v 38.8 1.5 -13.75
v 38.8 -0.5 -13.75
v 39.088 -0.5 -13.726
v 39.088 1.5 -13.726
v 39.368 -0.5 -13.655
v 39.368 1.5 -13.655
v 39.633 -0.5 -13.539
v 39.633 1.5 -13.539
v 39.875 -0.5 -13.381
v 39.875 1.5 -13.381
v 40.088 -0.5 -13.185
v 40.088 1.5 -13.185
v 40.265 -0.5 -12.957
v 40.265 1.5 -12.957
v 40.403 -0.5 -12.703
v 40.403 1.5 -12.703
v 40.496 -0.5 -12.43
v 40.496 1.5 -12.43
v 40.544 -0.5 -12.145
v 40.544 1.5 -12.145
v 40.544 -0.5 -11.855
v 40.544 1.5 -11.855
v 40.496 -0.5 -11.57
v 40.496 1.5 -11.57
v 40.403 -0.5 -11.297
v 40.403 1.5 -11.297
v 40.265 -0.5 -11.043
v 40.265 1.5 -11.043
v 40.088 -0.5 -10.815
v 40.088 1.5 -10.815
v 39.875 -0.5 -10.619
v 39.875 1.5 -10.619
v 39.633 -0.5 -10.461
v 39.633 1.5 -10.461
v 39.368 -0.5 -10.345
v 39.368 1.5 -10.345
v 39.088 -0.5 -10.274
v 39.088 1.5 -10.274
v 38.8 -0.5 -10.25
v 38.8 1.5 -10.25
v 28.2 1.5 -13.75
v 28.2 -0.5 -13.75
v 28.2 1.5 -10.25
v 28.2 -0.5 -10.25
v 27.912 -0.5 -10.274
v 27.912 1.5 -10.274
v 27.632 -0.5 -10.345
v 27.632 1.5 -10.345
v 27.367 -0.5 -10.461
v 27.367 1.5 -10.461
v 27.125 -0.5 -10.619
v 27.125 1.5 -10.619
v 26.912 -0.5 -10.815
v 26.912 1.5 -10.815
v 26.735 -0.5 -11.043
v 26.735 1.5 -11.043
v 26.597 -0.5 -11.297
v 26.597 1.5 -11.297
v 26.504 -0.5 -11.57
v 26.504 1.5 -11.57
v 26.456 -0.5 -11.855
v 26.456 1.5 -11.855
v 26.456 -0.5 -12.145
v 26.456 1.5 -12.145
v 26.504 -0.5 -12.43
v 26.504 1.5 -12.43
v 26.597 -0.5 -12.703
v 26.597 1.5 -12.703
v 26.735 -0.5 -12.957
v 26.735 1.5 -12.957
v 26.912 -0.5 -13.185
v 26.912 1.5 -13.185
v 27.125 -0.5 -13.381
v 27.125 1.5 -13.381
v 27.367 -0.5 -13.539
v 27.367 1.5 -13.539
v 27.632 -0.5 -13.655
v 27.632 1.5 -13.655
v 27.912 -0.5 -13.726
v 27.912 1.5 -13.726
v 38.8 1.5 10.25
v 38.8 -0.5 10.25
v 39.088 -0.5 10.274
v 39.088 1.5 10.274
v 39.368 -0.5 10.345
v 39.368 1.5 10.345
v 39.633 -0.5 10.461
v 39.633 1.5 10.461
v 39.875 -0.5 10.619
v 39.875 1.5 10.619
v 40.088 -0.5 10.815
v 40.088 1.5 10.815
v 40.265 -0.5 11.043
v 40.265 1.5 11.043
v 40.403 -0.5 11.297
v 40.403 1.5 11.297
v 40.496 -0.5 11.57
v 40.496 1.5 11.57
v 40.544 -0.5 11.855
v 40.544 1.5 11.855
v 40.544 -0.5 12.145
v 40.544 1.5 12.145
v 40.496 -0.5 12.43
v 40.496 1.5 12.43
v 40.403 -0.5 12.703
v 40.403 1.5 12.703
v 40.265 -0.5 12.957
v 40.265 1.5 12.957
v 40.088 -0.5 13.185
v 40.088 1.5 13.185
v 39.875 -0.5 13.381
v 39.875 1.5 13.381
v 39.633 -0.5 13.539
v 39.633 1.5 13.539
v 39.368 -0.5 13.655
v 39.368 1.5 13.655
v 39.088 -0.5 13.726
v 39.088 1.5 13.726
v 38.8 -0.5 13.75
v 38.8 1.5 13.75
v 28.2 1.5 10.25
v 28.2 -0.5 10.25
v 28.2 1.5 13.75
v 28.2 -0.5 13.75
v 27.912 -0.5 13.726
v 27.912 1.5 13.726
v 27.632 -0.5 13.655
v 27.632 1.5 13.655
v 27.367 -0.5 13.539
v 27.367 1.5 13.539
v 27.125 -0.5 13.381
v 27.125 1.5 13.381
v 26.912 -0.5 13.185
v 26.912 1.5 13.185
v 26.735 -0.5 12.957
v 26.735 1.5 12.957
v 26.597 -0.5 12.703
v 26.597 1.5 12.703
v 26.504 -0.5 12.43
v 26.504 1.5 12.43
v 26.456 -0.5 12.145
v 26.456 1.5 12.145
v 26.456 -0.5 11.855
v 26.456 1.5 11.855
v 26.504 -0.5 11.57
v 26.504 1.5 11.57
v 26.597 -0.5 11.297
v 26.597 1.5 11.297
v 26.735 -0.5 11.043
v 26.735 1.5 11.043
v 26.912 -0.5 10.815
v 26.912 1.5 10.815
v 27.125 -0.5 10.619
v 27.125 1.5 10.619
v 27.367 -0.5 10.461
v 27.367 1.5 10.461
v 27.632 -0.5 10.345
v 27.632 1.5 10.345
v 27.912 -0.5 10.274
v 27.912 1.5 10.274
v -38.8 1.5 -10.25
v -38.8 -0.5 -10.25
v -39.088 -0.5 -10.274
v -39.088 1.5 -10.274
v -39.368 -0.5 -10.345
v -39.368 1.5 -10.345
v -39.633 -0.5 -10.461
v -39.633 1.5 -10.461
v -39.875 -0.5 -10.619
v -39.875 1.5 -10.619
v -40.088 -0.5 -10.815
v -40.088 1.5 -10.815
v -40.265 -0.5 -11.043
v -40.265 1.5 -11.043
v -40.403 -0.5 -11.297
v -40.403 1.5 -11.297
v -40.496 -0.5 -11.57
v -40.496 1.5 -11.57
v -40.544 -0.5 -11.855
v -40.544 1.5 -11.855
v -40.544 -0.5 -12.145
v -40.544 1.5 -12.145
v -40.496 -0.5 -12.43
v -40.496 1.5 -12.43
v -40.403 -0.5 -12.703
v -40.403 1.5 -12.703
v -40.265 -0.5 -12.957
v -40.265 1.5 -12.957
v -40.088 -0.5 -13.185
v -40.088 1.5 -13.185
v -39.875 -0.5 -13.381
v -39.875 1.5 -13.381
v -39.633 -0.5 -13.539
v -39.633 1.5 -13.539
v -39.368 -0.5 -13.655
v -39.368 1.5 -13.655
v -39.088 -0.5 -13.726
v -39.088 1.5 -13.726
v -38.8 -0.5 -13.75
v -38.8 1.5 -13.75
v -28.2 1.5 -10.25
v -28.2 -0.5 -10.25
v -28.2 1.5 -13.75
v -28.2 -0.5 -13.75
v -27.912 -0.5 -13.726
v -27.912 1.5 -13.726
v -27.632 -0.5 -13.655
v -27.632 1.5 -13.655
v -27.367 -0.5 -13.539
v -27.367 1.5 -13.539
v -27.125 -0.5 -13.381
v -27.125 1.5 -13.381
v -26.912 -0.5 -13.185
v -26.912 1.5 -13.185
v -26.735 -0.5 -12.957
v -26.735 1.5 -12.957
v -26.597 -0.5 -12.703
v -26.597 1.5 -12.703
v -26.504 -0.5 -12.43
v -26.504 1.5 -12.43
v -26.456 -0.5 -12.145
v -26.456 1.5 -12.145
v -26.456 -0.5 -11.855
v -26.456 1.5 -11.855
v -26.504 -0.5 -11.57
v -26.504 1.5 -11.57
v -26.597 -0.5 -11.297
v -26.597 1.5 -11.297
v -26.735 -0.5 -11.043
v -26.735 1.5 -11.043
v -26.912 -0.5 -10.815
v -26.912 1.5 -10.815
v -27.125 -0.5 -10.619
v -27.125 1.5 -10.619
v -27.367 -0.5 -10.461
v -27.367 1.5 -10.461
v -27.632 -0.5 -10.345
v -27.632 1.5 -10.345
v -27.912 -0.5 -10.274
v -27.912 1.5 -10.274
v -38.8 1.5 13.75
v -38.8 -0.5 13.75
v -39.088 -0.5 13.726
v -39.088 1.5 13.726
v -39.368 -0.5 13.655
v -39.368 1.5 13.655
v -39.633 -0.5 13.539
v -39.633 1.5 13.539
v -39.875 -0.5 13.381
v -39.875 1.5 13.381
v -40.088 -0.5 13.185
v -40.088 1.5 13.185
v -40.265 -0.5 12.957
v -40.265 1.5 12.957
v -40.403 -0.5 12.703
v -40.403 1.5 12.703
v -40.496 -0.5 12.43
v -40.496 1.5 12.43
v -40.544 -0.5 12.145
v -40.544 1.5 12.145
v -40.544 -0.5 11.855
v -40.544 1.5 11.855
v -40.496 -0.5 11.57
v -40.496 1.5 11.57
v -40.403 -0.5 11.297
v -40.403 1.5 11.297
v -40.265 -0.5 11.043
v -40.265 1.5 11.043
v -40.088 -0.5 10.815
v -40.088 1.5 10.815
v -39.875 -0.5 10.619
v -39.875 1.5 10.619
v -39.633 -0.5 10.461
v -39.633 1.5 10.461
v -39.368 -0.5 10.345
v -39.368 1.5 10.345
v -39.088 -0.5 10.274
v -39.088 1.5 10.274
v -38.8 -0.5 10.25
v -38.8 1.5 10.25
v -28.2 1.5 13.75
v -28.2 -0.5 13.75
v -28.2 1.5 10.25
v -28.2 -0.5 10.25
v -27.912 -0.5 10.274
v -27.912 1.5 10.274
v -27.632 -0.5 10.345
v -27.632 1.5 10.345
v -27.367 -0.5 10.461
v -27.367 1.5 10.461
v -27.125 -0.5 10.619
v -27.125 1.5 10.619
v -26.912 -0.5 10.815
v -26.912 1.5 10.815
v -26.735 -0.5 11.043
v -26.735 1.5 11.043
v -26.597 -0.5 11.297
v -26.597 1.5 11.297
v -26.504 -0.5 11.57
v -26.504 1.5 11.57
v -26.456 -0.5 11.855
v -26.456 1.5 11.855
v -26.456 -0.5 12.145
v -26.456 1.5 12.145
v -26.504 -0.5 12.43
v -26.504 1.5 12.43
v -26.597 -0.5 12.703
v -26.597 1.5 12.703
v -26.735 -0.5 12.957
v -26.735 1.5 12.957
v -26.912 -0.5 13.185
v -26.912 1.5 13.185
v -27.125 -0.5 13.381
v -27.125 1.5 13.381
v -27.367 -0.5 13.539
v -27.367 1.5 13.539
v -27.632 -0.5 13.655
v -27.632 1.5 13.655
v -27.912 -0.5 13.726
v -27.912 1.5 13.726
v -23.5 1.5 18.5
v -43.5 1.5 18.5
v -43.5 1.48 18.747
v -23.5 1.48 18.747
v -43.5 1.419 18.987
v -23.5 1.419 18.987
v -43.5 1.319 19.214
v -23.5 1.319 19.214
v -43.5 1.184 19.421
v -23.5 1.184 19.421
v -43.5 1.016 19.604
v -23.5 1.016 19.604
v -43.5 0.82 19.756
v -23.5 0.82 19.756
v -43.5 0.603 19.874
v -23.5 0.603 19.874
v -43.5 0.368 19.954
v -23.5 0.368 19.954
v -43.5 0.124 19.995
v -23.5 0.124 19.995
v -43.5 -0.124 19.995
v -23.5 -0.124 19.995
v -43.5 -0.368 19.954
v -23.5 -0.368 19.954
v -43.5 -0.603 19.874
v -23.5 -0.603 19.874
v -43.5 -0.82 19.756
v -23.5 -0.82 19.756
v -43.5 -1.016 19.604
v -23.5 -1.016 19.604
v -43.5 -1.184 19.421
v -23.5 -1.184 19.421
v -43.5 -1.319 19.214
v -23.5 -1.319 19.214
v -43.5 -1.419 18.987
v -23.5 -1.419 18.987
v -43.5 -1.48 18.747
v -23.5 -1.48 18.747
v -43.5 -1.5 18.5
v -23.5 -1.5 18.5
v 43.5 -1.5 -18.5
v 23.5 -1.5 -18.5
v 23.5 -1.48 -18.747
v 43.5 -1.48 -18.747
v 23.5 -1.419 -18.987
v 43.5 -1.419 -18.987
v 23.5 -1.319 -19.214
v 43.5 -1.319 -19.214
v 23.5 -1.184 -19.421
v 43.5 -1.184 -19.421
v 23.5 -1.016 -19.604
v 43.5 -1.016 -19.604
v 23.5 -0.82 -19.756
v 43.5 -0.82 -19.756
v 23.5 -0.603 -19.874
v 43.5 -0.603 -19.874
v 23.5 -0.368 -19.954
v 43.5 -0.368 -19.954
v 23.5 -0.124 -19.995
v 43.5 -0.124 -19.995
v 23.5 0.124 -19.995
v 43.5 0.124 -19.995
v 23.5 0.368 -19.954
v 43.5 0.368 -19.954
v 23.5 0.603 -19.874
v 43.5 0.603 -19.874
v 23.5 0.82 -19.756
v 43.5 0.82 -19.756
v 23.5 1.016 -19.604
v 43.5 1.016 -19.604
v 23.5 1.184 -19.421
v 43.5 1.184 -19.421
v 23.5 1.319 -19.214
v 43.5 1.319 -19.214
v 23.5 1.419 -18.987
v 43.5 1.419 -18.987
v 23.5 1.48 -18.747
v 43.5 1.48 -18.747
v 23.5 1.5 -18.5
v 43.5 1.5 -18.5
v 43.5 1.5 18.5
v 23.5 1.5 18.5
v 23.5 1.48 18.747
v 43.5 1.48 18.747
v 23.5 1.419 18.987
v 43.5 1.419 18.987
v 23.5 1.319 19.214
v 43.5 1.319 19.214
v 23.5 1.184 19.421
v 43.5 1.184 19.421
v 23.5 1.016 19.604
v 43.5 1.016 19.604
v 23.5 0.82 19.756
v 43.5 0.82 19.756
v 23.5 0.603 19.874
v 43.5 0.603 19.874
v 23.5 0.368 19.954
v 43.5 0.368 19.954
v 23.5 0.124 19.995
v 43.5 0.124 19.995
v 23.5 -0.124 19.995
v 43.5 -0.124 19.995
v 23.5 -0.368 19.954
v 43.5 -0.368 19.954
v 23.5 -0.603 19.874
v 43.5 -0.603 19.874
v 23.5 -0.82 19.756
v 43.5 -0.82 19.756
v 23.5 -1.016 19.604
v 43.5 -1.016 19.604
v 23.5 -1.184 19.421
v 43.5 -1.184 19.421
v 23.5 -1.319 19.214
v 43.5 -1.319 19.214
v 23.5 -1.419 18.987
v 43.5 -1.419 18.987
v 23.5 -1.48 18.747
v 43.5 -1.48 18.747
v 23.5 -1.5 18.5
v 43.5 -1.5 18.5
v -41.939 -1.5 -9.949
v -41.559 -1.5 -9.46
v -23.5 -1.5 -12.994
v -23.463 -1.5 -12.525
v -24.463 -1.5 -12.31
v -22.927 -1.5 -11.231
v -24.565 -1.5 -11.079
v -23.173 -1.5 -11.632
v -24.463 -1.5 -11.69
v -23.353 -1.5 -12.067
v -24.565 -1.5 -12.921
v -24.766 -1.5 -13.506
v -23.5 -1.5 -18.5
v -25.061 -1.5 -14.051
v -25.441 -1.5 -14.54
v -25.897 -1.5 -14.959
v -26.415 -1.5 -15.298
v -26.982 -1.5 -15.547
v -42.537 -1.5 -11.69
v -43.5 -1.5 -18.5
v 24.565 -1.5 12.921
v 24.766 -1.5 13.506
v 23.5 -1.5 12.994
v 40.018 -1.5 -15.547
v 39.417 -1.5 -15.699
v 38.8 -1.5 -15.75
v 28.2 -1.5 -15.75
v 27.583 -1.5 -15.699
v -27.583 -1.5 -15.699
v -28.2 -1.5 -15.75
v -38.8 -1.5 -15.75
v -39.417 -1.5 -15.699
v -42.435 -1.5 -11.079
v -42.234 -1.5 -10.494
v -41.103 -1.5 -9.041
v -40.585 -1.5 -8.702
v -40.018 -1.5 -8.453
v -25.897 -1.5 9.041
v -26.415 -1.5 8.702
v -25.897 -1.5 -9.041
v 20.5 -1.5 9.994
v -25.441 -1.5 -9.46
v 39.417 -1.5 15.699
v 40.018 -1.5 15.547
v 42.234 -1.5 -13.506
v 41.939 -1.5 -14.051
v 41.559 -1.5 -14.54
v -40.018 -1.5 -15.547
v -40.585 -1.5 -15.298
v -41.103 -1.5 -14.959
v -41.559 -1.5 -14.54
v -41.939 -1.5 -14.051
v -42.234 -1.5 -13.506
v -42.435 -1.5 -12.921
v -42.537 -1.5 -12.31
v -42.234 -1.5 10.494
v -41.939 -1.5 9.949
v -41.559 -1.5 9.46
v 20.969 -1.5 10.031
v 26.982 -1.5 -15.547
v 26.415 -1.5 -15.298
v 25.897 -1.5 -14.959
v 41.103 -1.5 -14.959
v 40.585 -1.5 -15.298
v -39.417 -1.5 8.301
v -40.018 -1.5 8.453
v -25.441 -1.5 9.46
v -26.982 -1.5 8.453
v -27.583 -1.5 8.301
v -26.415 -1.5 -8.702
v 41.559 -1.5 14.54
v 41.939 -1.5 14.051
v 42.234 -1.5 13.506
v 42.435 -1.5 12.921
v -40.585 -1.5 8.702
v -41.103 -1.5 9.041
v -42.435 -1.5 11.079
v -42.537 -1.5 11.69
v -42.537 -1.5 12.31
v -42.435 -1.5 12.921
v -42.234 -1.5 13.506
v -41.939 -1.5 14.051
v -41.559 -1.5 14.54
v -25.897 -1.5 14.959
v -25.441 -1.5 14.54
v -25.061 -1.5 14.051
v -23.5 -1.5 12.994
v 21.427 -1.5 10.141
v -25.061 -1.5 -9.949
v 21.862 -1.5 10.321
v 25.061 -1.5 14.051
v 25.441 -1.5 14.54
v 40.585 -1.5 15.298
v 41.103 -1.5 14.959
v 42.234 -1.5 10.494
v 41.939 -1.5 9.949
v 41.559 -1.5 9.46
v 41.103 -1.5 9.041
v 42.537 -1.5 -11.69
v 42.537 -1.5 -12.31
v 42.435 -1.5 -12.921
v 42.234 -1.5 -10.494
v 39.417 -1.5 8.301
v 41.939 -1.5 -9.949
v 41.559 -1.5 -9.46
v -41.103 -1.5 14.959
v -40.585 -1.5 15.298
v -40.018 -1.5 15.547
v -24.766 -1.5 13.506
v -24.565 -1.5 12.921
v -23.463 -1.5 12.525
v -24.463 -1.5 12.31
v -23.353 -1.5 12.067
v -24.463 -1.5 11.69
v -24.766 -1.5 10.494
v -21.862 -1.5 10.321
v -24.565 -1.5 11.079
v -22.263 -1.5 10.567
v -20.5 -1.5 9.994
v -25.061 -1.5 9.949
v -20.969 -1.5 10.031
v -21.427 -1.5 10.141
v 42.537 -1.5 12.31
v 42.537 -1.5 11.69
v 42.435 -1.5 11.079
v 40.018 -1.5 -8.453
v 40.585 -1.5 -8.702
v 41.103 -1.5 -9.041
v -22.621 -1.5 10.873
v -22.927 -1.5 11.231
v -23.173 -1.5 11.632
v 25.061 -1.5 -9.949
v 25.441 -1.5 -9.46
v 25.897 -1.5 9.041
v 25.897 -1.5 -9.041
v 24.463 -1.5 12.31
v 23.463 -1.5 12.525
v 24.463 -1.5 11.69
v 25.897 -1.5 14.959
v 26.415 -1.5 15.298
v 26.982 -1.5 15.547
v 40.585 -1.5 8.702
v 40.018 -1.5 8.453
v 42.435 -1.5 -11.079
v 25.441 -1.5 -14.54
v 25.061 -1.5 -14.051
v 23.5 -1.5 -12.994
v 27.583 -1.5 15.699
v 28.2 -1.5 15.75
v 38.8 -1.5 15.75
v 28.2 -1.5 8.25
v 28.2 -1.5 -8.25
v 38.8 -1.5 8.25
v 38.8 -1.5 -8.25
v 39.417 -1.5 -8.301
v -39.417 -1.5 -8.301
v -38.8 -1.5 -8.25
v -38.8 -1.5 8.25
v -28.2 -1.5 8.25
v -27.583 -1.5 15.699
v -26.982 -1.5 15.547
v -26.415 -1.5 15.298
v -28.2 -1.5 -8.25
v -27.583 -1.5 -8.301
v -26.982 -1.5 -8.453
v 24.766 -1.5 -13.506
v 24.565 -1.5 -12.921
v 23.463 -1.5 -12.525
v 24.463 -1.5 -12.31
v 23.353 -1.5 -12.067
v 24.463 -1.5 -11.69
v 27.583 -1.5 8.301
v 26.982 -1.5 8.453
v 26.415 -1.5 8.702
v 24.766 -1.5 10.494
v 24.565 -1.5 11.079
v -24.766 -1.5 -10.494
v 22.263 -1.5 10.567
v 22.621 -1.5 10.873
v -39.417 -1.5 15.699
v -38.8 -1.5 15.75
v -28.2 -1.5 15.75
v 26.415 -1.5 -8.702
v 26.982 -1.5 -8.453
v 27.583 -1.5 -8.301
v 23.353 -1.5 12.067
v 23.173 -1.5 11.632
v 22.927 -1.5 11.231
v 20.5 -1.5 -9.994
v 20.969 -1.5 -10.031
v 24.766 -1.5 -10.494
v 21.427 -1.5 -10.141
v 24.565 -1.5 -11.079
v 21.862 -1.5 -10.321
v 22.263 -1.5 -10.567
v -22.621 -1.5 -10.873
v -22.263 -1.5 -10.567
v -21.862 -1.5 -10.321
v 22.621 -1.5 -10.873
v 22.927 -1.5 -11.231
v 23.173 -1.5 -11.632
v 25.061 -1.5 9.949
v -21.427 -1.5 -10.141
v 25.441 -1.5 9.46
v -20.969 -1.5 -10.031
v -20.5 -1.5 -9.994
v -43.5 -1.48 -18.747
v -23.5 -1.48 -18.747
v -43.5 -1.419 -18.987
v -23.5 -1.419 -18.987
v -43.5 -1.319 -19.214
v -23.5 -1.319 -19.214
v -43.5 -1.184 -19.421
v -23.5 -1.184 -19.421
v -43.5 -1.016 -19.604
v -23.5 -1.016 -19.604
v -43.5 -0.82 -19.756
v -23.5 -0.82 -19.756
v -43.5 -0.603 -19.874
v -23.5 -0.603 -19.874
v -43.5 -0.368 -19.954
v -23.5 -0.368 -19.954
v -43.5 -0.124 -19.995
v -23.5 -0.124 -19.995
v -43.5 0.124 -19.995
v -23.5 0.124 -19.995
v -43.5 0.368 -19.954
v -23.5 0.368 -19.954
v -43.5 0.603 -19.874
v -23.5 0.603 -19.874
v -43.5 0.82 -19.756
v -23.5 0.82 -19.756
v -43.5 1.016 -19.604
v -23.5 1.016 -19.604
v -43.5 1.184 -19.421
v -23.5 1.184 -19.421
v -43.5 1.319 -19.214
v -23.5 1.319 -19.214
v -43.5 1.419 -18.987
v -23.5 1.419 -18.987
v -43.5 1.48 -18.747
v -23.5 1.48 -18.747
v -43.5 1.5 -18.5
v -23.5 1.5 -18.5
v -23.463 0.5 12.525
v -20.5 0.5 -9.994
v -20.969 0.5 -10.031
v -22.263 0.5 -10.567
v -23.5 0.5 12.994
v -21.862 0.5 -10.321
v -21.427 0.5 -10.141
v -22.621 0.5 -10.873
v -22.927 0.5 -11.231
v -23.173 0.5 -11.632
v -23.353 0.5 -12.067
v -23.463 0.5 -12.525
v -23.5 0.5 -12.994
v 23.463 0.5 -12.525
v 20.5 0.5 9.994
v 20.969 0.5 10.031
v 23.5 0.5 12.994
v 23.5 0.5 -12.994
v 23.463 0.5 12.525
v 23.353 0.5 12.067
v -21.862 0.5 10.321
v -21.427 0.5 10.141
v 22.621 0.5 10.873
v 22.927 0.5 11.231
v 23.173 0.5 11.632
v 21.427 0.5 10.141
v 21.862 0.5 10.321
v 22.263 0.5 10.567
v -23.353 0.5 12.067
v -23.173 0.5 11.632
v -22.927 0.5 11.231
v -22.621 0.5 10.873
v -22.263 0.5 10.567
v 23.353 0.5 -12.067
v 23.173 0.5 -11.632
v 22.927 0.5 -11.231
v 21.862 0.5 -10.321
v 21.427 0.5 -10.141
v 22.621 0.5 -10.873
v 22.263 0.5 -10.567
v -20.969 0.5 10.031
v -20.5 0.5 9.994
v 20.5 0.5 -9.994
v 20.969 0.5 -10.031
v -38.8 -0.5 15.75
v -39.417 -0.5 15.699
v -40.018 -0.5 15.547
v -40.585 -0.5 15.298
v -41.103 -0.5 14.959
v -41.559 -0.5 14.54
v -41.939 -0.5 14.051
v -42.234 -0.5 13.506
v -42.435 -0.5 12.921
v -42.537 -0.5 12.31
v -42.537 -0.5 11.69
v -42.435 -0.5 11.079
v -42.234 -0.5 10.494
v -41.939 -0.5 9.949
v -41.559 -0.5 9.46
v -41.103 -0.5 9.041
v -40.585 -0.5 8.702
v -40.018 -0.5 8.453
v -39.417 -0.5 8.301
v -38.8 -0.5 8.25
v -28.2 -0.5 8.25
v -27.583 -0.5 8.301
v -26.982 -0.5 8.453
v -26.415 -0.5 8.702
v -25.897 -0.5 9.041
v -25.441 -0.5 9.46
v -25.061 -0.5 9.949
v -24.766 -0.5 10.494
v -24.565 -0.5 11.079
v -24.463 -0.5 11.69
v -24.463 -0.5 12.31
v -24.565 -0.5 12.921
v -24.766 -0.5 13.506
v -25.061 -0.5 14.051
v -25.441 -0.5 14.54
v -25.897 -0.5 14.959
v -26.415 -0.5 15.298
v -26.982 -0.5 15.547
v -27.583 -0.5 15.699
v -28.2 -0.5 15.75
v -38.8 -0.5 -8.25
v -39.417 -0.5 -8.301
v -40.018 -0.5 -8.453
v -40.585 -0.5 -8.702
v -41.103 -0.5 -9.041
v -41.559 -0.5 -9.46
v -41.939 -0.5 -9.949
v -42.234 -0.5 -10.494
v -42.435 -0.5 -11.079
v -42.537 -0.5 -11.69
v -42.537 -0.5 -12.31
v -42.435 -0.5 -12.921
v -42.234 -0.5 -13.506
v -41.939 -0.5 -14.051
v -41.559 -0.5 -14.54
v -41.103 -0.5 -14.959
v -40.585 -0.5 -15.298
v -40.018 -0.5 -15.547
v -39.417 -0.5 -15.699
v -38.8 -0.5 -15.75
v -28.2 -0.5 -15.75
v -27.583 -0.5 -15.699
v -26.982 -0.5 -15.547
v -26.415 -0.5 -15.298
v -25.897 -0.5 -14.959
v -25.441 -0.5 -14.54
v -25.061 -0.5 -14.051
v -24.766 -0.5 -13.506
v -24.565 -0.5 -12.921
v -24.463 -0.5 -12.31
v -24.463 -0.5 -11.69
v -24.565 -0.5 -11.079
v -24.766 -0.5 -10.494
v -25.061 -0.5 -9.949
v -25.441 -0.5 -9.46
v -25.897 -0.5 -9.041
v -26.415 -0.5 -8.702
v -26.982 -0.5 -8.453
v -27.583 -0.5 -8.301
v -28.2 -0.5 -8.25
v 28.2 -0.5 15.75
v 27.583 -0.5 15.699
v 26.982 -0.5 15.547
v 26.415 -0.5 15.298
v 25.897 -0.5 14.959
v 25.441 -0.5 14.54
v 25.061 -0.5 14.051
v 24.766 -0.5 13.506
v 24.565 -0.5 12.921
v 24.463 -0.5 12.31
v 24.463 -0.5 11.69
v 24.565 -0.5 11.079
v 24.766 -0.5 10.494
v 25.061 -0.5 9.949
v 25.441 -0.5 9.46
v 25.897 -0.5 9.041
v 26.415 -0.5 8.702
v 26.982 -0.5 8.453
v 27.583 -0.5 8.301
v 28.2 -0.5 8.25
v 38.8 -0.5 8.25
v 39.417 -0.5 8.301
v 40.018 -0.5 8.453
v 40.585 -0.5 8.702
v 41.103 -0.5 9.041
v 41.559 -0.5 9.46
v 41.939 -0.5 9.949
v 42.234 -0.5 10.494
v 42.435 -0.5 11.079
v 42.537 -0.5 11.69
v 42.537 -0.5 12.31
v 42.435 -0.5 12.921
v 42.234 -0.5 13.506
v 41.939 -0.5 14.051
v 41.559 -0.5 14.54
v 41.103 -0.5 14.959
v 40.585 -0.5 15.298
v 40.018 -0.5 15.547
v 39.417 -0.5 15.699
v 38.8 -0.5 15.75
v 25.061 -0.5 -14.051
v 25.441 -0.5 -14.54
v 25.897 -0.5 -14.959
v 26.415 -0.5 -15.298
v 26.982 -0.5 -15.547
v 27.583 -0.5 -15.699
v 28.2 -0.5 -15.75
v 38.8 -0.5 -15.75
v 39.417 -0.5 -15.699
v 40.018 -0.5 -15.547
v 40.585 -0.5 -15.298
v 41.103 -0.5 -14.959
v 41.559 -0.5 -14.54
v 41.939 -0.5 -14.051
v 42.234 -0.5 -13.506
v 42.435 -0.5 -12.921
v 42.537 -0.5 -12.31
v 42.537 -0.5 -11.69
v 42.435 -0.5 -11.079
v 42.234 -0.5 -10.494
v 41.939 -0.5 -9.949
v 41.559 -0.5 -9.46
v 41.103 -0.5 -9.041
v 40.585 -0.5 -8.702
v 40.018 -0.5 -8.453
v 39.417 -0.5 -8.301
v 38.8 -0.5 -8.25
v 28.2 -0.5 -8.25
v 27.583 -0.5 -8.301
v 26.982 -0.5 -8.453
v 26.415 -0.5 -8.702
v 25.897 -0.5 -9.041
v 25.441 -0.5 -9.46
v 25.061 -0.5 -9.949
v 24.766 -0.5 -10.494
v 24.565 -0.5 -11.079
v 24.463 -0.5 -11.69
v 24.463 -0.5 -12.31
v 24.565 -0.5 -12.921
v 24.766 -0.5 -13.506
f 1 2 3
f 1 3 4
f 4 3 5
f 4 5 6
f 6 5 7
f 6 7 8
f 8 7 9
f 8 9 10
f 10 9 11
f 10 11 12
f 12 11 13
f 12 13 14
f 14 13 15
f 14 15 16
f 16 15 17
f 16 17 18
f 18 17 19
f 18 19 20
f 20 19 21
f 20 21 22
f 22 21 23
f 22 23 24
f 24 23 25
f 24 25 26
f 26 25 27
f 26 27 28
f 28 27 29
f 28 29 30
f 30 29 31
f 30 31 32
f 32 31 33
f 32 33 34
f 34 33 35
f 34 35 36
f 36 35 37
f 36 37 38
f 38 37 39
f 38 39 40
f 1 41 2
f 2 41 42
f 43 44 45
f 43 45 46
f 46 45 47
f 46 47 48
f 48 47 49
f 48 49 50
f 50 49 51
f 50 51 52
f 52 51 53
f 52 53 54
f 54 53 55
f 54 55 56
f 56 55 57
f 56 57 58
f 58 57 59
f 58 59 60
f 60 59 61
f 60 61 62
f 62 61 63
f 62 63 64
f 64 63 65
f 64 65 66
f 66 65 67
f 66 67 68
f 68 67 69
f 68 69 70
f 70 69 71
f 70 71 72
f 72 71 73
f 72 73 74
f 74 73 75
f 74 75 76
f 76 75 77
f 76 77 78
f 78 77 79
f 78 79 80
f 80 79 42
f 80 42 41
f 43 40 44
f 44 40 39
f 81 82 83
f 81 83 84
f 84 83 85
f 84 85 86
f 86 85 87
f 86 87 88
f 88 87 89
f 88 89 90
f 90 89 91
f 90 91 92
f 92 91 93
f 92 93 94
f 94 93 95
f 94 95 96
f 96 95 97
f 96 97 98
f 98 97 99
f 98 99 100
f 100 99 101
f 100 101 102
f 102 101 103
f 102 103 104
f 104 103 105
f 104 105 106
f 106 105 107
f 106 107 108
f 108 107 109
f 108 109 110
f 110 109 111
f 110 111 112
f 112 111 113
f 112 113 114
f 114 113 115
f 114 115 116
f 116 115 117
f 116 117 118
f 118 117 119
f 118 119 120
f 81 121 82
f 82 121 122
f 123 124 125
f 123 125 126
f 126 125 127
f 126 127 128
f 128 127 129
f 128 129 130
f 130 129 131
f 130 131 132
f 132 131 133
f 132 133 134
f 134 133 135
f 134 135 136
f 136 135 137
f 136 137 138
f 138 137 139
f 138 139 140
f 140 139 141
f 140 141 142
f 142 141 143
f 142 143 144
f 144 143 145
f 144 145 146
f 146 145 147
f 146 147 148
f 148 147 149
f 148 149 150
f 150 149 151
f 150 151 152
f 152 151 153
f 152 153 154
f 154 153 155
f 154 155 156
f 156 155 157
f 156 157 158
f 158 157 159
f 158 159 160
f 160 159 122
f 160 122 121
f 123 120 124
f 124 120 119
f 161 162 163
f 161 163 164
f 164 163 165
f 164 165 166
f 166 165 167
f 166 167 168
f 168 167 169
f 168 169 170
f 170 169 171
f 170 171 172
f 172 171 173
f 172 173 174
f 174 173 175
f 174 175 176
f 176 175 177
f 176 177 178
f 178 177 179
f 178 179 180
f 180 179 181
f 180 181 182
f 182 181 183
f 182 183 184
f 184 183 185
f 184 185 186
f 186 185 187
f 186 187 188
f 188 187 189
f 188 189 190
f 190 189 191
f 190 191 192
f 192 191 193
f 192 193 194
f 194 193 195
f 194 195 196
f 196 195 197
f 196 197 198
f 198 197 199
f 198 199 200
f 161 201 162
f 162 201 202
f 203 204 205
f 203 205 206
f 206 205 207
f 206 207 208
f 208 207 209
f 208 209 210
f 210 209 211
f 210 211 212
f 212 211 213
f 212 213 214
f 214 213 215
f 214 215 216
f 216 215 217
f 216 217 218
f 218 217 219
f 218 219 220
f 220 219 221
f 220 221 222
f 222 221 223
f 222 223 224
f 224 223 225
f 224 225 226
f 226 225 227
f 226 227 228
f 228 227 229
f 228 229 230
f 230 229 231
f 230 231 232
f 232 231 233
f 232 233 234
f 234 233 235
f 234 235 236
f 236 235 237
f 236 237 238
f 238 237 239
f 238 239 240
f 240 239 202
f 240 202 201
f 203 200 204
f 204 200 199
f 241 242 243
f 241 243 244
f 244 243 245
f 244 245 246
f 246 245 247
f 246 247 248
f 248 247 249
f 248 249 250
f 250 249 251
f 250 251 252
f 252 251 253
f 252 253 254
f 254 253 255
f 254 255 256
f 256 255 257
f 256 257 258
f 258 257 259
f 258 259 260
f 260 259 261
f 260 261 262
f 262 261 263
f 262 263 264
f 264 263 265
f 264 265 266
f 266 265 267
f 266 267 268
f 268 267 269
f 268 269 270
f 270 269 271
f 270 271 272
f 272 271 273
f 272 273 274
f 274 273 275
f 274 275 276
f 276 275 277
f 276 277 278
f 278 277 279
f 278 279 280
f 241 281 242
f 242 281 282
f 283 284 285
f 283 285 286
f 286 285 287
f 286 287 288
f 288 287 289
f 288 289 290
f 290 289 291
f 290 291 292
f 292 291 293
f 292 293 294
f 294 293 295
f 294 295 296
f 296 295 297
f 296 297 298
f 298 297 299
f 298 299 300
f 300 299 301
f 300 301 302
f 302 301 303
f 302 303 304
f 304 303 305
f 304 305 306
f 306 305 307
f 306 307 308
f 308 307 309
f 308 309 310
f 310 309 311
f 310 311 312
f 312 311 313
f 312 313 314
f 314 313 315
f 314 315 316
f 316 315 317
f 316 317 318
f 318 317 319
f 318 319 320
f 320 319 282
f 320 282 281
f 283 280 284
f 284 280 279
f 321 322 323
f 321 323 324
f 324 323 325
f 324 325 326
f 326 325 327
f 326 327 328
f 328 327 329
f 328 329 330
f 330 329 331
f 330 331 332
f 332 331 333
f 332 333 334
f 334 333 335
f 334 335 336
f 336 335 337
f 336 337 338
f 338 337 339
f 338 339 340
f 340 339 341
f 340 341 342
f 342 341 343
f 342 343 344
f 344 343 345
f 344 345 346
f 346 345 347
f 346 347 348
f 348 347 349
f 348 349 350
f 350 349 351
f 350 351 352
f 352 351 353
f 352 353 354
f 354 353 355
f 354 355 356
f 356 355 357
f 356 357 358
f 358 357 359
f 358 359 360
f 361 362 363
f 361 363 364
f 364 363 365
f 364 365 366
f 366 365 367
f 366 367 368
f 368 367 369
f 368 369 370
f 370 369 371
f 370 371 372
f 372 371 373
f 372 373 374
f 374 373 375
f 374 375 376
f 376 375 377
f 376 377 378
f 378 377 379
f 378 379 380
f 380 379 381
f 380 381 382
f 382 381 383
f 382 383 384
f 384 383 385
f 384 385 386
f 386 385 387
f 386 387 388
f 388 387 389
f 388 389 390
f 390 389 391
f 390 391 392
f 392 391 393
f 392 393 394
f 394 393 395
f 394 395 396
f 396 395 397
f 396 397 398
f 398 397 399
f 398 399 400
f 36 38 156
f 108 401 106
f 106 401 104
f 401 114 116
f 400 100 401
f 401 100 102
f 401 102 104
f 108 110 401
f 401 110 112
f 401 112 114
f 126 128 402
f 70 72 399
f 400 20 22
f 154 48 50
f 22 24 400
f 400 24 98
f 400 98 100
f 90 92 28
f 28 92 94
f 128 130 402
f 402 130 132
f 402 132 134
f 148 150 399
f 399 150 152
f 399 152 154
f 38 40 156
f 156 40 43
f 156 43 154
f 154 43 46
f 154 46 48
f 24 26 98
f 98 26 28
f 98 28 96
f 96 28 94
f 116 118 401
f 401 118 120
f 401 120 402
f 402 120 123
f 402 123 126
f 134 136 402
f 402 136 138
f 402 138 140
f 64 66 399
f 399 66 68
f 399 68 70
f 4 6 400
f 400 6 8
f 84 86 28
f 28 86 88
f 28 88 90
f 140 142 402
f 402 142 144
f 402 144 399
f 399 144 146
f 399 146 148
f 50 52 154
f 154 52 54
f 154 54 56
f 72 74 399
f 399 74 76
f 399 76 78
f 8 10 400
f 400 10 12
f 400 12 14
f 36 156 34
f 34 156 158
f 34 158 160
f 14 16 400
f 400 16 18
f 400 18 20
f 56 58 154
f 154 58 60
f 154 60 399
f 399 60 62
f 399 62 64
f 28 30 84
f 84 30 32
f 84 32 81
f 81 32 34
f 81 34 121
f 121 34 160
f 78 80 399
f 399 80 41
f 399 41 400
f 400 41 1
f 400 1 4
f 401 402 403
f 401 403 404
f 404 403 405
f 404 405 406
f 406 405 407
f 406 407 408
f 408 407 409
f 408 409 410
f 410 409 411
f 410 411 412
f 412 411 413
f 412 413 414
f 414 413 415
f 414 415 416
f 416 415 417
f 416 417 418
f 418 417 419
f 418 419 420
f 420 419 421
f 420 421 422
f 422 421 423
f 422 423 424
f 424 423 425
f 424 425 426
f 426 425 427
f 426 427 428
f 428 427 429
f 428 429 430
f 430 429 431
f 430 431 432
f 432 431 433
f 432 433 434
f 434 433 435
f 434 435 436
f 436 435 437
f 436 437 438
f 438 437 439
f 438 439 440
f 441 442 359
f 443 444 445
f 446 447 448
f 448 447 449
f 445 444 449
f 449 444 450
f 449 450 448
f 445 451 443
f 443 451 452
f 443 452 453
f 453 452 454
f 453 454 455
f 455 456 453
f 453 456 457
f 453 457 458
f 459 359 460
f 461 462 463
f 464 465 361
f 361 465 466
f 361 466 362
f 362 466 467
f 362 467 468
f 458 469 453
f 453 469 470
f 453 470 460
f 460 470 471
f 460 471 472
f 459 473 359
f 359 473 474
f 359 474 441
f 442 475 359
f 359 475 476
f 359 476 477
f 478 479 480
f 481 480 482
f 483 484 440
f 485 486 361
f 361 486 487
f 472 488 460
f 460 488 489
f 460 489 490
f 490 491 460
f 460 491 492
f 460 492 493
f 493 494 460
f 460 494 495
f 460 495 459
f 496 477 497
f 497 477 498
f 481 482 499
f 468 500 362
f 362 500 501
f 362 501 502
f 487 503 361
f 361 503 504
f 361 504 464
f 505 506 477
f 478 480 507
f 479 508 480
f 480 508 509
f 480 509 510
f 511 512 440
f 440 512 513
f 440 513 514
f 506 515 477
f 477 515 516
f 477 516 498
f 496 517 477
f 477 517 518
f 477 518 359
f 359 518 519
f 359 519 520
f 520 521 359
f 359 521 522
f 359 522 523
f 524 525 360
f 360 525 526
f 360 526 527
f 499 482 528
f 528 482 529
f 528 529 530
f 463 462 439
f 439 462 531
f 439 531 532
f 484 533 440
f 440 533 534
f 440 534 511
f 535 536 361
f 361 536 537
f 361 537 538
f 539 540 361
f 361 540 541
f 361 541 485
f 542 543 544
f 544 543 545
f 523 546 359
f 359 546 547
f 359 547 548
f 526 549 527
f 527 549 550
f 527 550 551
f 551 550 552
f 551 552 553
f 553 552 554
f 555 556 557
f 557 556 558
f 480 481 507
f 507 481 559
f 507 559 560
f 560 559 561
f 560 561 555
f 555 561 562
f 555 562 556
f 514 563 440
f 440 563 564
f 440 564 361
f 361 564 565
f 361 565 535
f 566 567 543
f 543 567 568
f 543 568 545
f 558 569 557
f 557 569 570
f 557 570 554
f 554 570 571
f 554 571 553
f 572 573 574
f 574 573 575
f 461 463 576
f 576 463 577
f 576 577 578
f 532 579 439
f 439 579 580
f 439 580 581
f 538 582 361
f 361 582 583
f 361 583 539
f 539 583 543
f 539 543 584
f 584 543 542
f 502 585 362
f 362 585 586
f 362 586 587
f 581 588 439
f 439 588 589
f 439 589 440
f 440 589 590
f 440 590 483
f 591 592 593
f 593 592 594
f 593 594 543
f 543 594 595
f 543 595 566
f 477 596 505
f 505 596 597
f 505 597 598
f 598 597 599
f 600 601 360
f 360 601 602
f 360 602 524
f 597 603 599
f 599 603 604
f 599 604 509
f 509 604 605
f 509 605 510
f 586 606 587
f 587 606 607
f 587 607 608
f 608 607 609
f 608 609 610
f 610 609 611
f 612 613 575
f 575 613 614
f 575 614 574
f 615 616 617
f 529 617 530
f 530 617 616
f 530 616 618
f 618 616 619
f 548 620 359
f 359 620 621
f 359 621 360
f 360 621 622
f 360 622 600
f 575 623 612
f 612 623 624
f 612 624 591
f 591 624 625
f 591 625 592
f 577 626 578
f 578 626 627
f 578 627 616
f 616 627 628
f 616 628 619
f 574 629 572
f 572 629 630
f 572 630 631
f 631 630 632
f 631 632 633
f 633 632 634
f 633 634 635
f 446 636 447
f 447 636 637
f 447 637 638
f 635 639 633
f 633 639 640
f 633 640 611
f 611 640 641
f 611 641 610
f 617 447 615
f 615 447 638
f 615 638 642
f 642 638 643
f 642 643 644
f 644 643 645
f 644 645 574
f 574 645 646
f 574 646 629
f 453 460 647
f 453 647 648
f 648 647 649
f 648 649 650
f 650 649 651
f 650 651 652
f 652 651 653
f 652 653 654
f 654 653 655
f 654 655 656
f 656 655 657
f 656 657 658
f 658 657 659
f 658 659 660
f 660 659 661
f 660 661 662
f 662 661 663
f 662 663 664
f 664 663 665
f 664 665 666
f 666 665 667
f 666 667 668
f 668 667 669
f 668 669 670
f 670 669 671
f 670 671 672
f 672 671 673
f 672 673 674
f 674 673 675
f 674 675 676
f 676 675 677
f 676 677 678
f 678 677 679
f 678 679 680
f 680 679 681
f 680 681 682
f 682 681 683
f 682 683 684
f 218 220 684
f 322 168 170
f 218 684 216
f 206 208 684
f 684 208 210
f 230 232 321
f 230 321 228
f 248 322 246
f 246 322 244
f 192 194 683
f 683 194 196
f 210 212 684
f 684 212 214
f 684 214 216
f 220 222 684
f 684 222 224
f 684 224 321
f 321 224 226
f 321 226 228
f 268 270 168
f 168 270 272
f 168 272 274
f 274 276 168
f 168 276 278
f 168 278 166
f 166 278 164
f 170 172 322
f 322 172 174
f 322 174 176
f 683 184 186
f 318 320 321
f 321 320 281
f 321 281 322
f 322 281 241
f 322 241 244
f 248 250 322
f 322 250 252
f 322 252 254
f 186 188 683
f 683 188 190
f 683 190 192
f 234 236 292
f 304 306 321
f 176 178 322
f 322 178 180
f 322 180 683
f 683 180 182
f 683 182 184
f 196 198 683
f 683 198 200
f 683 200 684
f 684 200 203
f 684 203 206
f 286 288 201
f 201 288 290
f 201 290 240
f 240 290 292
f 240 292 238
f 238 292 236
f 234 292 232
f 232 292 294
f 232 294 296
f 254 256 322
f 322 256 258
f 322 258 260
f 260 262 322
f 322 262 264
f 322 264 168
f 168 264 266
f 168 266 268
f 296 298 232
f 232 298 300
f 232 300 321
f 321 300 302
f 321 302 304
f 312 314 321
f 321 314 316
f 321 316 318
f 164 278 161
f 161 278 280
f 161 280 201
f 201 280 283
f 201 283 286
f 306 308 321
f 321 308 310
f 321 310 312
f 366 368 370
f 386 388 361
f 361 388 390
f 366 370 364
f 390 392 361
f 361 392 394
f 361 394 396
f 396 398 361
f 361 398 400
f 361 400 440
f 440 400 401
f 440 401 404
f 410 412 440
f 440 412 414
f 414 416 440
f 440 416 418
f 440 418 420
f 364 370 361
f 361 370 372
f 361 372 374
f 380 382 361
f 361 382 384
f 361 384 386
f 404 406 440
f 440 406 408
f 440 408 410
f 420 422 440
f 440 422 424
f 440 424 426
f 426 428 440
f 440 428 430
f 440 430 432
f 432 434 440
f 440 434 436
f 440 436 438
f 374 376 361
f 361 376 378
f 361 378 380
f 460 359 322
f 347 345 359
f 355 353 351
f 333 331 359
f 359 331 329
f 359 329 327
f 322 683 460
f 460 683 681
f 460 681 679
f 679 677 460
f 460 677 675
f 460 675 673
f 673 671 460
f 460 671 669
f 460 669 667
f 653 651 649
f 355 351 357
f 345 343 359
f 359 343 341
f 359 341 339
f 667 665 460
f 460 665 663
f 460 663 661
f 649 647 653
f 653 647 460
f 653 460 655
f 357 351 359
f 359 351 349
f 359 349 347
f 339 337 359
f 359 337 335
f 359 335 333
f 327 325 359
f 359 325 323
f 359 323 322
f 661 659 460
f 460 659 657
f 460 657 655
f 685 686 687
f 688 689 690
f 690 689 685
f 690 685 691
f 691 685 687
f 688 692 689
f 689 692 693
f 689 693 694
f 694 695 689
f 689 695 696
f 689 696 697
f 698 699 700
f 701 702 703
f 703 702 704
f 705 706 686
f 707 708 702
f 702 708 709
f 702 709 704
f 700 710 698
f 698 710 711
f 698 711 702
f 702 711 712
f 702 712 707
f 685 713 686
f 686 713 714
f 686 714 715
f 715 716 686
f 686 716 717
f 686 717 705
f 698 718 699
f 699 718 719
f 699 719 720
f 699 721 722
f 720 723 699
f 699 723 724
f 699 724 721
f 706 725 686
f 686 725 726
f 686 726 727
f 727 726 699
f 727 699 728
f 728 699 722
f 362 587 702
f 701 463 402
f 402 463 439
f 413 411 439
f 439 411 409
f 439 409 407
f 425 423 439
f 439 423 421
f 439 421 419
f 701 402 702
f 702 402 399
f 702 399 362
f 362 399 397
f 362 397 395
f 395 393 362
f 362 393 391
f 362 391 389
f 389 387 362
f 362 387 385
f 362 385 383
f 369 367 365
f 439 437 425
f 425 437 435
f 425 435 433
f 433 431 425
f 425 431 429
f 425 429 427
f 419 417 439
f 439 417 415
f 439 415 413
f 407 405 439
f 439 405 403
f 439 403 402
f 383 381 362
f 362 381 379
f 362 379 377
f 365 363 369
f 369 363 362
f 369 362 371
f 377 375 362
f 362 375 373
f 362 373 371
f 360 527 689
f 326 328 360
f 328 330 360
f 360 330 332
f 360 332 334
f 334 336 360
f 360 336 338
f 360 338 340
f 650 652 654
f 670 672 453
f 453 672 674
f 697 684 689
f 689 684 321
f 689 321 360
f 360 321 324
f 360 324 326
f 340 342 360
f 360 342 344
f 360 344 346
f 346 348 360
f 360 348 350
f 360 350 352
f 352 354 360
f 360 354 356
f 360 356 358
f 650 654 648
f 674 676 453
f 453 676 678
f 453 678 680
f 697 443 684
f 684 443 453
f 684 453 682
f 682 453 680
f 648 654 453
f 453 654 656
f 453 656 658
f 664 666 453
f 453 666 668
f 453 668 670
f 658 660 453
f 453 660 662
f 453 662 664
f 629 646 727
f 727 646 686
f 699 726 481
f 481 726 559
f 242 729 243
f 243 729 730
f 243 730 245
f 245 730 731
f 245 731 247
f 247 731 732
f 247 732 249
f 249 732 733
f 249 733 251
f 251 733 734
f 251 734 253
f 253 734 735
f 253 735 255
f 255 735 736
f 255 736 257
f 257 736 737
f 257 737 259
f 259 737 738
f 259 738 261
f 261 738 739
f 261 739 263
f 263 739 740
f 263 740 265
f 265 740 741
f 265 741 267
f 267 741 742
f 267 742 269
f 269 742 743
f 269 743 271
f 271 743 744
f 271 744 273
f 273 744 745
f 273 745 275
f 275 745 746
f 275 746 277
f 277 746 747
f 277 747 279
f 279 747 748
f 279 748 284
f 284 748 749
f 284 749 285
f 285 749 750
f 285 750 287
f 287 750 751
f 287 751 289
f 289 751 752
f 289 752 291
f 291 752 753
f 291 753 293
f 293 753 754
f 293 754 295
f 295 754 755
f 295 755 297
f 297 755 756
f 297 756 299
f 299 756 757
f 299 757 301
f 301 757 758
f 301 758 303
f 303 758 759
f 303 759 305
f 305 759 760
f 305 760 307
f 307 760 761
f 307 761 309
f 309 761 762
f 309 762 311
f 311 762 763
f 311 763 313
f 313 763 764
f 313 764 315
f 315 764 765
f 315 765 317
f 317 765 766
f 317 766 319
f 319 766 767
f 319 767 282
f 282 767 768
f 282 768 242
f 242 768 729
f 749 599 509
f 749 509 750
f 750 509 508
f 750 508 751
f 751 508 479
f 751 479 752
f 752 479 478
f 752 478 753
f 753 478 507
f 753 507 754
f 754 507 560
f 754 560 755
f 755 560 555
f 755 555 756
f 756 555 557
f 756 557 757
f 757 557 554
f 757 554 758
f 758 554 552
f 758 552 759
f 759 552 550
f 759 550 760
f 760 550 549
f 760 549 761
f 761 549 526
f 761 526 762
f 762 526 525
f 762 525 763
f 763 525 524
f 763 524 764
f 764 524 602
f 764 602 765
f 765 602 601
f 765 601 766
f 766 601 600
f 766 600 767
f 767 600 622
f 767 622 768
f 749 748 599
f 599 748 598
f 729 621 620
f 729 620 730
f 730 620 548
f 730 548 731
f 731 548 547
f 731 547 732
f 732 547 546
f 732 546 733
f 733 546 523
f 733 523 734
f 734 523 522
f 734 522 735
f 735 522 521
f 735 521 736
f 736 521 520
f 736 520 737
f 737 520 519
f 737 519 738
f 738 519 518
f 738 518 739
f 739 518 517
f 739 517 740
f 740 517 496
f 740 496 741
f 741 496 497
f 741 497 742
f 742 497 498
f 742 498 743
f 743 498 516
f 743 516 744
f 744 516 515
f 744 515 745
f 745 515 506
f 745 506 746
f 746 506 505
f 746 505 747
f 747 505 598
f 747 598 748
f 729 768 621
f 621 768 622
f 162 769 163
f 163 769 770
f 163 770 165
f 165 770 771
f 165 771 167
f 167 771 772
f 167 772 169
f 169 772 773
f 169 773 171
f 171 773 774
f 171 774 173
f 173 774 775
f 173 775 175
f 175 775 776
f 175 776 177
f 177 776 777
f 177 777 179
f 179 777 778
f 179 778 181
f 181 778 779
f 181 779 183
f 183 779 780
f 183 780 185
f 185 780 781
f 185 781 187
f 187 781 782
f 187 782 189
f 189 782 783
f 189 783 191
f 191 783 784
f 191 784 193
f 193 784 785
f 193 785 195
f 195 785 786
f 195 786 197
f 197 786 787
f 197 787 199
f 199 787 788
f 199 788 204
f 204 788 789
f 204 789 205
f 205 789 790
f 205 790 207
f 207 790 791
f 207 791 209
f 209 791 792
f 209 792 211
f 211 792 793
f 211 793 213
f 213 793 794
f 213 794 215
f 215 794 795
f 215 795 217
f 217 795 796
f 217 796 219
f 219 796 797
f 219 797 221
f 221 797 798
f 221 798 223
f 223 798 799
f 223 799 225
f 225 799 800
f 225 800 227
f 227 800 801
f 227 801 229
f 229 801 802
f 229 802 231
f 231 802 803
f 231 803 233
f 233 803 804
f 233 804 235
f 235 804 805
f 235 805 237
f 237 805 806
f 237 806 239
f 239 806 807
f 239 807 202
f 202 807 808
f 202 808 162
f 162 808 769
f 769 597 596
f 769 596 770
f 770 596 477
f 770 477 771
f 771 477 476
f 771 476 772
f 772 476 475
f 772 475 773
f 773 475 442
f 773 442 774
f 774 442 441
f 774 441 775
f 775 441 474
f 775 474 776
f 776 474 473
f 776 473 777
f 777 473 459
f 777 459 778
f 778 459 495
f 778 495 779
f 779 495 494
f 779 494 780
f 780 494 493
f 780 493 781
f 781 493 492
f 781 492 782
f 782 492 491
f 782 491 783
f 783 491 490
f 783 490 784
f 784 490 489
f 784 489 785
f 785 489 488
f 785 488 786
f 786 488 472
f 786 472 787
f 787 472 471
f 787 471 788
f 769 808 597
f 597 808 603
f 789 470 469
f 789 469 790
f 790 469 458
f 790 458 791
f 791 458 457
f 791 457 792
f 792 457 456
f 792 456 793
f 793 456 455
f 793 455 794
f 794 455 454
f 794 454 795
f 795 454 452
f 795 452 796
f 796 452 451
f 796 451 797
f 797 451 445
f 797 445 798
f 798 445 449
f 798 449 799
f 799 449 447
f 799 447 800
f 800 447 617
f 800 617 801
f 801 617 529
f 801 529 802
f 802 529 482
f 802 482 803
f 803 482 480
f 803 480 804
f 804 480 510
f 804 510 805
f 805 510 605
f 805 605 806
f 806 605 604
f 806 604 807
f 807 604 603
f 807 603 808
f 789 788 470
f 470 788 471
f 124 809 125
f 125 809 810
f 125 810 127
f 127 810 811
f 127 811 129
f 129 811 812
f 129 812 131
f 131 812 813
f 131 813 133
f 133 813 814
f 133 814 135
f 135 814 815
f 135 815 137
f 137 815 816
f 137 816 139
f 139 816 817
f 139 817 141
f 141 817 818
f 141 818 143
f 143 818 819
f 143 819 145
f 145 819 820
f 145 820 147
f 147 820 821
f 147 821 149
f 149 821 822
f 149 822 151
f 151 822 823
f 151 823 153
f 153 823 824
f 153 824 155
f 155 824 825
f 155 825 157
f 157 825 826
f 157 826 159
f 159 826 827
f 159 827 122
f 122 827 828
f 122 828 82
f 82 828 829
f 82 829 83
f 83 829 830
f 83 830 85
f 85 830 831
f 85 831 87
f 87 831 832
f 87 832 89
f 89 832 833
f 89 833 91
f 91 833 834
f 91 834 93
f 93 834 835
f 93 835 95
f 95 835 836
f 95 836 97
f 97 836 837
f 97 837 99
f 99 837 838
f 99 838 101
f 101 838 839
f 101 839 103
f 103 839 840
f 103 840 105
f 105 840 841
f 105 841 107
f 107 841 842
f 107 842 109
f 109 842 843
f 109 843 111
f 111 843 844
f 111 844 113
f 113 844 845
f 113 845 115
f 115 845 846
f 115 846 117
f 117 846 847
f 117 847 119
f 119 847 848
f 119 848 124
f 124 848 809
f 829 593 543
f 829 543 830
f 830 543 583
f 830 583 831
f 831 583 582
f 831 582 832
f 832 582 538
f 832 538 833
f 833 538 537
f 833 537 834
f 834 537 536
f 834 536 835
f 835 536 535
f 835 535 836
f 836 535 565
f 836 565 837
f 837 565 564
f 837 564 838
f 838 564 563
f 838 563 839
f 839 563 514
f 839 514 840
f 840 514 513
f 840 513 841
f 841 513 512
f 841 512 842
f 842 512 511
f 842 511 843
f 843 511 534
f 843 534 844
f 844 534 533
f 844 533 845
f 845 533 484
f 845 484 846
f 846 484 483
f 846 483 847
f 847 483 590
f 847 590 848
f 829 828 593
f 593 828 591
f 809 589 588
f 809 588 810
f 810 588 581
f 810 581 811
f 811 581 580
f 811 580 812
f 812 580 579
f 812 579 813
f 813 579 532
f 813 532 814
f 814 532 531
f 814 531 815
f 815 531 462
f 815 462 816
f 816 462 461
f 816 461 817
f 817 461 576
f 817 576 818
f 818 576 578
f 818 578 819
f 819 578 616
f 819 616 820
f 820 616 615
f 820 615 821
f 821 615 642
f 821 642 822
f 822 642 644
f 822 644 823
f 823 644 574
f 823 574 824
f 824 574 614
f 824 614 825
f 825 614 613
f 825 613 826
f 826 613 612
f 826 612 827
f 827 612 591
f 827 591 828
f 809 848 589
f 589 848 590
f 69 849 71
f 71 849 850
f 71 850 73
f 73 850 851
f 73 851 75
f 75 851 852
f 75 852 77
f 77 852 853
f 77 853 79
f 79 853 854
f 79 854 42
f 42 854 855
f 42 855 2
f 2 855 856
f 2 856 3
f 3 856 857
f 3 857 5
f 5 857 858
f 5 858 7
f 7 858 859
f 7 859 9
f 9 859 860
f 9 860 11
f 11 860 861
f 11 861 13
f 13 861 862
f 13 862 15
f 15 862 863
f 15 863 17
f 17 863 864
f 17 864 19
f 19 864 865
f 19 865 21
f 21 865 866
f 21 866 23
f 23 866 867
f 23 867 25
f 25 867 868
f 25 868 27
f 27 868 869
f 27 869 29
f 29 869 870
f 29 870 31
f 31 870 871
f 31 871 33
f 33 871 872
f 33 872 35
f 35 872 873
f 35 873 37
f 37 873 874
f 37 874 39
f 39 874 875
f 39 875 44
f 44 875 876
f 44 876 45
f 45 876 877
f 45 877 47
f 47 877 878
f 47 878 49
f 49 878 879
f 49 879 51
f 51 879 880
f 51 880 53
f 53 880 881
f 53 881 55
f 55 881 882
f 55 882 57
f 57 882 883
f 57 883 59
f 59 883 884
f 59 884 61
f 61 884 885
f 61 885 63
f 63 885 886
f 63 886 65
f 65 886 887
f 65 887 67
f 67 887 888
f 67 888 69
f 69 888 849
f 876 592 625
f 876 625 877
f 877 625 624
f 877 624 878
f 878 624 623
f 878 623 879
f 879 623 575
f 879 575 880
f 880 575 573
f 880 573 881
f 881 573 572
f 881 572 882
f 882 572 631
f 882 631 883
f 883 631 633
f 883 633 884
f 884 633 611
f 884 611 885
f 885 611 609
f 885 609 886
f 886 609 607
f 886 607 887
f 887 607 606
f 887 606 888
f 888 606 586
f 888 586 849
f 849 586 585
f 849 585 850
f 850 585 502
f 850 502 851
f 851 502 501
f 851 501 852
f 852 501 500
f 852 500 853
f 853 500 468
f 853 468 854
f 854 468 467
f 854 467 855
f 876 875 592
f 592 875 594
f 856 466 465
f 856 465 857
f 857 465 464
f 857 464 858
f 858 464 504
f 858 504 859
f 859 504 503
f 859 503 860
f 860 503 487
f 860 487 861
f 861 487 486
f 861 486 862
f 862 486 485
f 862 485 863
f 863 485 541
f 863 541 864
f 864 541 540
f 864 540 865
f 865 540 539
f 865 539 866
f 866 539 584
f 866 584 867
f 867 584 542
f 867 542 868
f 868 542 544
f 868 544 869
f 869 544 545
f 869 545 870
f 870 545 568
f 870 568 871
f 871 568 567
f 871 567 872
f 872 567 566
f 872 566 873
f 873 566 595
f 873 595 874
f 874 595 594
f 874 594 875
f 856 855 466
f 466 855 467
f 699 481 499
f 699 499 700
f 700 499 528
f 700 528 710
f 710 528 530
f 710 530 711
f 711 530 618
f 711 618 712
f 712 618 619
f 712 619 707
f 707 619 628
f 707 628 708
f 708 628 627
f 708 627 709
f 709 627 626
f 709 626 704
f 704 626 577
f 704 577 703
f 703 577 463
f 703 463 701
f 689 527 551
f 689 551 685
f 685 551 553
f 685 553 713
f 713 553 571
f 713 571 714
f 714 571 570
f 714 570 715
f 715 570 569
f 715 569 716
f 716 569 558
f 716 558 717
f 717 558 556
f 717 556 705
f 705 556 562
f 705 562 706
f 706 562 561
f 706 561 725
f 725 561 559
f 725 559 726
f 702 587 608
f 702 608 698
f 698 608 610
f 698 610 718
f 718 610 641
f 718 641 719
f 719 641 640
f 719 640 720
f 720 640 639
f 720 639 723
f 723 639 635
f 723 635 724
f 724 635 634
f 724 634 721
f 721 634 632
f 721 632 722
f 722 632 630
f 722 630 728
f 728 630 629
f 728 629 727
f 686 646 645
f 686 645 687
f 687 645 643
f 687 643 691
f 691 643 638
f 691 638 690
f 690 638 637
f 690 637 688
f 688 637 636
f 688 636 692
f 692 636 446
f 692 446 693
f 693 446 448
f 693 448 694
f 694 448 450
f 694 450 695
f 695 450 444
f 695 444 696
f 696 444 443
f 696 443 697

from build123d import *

# Parameters (mm, degrees)
EXTRUDE_1_DEPTH     = 43.5
SKETCH_3_W          = 47
SKETCH_3_H          = 40
CUT_EXTRUDE_1_DEPTH = 1
SKETCH_4_W          = 47
SKETCH_4_H          = 16.028408988
CUT_EXTRUDE_2_DEPTH = 48.919202831
CUT_EXTRUDE_3_DEPTH = 48.971345614
CUT_EXTRUDE_4_DEPTH = 1
FILLET_1_R          = 3


with BuildPart() as part:
    # 草图2 → 凸台-拉伸1 (new, symmetric)
    with BuildSketch(Plane(origin=(0, 0, 0), x_dir=(0, 0, -1), z_dir=(1, 0, 0))):
        with BuildLine():
            Line((-18.5, 1.5), (18.5, 1.5))
            ThreePointArc((18.5, 1.5), (20, 0), (18.5, -1.5))
            Line((18.5, -1.5), (-18.5, -1.5))
            ThreePointArc((-18.5, -1.5), (-20, 0), (-18.5, 1.5))
        make_face()
    extrude(amount=EXTRUDE_1_DEPTH, both=True)

    # 草图3 → 切除-拉伸1 (cut)
    with BuildSketch(Plane(origin=(0, 1.5, 0), x_dir=(1, 0, 0), z_dir=(0, 1, 0))):
        Rectangle(SKETCH_3_W, SKETCH_3_H)
    extrude(amount=-CUT_EXTRUDE_1_DEPTH, mode=Mode.SUBTRACT)

    # 草图4 → 切除-拉伸2 (cut, through all)
    with BuildSketch(Plane(origin=(0, 0.5, 0), x_dir=(1, 0, 0), z_dir=(0, 1, 0))):
        with Locations((0, 18.008457368)):
            Rectangle(SKETCH_4_W, SKETCH_4_H)
        with Locations((0, -18.008457368)):
            Rectangle(SKETCH_4_W, SKETCH_4_H)
    extrude(amount=-CUT_EXTRUDE_2_DEPTH, mode=Mode.SUBTRACT)

    # 草图5 → 切除-拉伸3 (cut, through all)
    with BuildSketch(Plane(origin=(0, -1.5, 0), x_dir=(-1, 0, 0), z_dir=(0, -1, 0))):
        with BuildLine():
            Line((38.8, -13.75), (28.2, -13.75))
            ThreePointArc((28.2, -13.75), (26.45, -12), (28.2, -10.25))
            Line((28.2, -10.25), (38.8, -10.25))
            ThreePointArc((38.8, -10.25), (40.55, -12), (38.8, -13.75))
        make_face()
        with BuildLine():
            Line((38.8, 13.75), (28.2, 13.75))
            ThreePointArc((28.2, 13.75), (26.45, 12), (28.2, 10.25))
            Line((28.2, 10.25), (38.8, 10.25))
            ThreePointArc((38.8, 10.25), (40.55, 12), (38.8, 13.75))
        make_face()
        with BuildLine():
            Line((-38.8, 13.75), (-28.2, 13.75))
            ThreePointArc((-28.2, 13.75), (-26.45, 12), (-28.2, 10.25))
            Line((-28.2, 10.25), (-38.8, 10.25))
            ThreePointArc((-38.8, 10.25), (-40.55, 12), (-38.8, 13.75))
        make_face()
        with BuildLine():
            Line((-38.8, -13.75), (-28.2, -13.75))
            ThreePointArc((-28.2, -13.75), (-26.45, -12), (-28.2, -10.25))
            Line((-28.2, -10.25), (-38.8, -10.25))
            ThreePointArc((-38.8, -10.25), (-40.55, -12), (-38.8, -13.75))
        make_face()
    extrude(amount=-CUT_EXTRUDE_3_DEPTH, mode=Mode.SUBTRACT)

    # 草图6 → 切除-拉伸4 (cut)
    with BuildSketch(Plane.XZ.offset(1.5)):
        with BuildLine():
            Line((-28.2, 15.75), (-38.8, 15.75))
            ThreePointArc((-38.8, 15.75), (-42.55, 12), (-38.8, 8.25))
            Line((-38.8, 8.25), (-28.2, 8.25))
            ThreePointArc((-28.2, 8.25), (-24.45, 12), (-28.2, 15.75))
        make_face()
        with BuildLine():
            Line((-38.8, -15.75), (-28.2, -15.75))
            ThreePointArc((-28.2, -15.75), (-24.45, -12), (-28.2, -8.25))
            Line((-28.2, -8.25), (-38.8, -8.25))
            ThreePointArc((-38.8, -8.25), (-42.55, -12), (-38.8, -15.75))
        make_face()
        with BuildLine():
            Line((38.8, 15.75), (28.2, 15.75))
            ThreePointArc((28.2, 15.75), (24.45, 12), (28.2, 8.25))
            Line((28.2, 8.25), (38.8, 8.25))
            ThreePointArc((38.8, 8.25), (42.55, 12), (38.8, 15.75))
        make_face()
        with BuildLine():
            Line((28.2, -15.75), (38.8, -15.75))
            ThreePointArc((38.8, -15.75), (42.55, -12), (38.8, -8.25))
            Line((38.8, -8.25), (28.2, -8.25))
            ThreePointArc((28.2, -8.25), (24.45, -12), (28.2, -15.75))
        make_face()
    extrude(amount=-CUT_EXTRUDE_4_DEPTH, mode=Mode.SUBTRACT)

    # 圆角1
    fillet_1_edges = [part.edges().sort_by_distance(p)[0] for p in [
        (-23.5, -0.5, -9.994252874),
        (23.5, -0.5, -9.994252874),
        (23.5, -0.5, 9.994252874),
        (-23.5, -0.5, 9.994252874),
    ]]
    fillet(fillet_1_edges, radius=FILLET_1_R)


solid = part.part
